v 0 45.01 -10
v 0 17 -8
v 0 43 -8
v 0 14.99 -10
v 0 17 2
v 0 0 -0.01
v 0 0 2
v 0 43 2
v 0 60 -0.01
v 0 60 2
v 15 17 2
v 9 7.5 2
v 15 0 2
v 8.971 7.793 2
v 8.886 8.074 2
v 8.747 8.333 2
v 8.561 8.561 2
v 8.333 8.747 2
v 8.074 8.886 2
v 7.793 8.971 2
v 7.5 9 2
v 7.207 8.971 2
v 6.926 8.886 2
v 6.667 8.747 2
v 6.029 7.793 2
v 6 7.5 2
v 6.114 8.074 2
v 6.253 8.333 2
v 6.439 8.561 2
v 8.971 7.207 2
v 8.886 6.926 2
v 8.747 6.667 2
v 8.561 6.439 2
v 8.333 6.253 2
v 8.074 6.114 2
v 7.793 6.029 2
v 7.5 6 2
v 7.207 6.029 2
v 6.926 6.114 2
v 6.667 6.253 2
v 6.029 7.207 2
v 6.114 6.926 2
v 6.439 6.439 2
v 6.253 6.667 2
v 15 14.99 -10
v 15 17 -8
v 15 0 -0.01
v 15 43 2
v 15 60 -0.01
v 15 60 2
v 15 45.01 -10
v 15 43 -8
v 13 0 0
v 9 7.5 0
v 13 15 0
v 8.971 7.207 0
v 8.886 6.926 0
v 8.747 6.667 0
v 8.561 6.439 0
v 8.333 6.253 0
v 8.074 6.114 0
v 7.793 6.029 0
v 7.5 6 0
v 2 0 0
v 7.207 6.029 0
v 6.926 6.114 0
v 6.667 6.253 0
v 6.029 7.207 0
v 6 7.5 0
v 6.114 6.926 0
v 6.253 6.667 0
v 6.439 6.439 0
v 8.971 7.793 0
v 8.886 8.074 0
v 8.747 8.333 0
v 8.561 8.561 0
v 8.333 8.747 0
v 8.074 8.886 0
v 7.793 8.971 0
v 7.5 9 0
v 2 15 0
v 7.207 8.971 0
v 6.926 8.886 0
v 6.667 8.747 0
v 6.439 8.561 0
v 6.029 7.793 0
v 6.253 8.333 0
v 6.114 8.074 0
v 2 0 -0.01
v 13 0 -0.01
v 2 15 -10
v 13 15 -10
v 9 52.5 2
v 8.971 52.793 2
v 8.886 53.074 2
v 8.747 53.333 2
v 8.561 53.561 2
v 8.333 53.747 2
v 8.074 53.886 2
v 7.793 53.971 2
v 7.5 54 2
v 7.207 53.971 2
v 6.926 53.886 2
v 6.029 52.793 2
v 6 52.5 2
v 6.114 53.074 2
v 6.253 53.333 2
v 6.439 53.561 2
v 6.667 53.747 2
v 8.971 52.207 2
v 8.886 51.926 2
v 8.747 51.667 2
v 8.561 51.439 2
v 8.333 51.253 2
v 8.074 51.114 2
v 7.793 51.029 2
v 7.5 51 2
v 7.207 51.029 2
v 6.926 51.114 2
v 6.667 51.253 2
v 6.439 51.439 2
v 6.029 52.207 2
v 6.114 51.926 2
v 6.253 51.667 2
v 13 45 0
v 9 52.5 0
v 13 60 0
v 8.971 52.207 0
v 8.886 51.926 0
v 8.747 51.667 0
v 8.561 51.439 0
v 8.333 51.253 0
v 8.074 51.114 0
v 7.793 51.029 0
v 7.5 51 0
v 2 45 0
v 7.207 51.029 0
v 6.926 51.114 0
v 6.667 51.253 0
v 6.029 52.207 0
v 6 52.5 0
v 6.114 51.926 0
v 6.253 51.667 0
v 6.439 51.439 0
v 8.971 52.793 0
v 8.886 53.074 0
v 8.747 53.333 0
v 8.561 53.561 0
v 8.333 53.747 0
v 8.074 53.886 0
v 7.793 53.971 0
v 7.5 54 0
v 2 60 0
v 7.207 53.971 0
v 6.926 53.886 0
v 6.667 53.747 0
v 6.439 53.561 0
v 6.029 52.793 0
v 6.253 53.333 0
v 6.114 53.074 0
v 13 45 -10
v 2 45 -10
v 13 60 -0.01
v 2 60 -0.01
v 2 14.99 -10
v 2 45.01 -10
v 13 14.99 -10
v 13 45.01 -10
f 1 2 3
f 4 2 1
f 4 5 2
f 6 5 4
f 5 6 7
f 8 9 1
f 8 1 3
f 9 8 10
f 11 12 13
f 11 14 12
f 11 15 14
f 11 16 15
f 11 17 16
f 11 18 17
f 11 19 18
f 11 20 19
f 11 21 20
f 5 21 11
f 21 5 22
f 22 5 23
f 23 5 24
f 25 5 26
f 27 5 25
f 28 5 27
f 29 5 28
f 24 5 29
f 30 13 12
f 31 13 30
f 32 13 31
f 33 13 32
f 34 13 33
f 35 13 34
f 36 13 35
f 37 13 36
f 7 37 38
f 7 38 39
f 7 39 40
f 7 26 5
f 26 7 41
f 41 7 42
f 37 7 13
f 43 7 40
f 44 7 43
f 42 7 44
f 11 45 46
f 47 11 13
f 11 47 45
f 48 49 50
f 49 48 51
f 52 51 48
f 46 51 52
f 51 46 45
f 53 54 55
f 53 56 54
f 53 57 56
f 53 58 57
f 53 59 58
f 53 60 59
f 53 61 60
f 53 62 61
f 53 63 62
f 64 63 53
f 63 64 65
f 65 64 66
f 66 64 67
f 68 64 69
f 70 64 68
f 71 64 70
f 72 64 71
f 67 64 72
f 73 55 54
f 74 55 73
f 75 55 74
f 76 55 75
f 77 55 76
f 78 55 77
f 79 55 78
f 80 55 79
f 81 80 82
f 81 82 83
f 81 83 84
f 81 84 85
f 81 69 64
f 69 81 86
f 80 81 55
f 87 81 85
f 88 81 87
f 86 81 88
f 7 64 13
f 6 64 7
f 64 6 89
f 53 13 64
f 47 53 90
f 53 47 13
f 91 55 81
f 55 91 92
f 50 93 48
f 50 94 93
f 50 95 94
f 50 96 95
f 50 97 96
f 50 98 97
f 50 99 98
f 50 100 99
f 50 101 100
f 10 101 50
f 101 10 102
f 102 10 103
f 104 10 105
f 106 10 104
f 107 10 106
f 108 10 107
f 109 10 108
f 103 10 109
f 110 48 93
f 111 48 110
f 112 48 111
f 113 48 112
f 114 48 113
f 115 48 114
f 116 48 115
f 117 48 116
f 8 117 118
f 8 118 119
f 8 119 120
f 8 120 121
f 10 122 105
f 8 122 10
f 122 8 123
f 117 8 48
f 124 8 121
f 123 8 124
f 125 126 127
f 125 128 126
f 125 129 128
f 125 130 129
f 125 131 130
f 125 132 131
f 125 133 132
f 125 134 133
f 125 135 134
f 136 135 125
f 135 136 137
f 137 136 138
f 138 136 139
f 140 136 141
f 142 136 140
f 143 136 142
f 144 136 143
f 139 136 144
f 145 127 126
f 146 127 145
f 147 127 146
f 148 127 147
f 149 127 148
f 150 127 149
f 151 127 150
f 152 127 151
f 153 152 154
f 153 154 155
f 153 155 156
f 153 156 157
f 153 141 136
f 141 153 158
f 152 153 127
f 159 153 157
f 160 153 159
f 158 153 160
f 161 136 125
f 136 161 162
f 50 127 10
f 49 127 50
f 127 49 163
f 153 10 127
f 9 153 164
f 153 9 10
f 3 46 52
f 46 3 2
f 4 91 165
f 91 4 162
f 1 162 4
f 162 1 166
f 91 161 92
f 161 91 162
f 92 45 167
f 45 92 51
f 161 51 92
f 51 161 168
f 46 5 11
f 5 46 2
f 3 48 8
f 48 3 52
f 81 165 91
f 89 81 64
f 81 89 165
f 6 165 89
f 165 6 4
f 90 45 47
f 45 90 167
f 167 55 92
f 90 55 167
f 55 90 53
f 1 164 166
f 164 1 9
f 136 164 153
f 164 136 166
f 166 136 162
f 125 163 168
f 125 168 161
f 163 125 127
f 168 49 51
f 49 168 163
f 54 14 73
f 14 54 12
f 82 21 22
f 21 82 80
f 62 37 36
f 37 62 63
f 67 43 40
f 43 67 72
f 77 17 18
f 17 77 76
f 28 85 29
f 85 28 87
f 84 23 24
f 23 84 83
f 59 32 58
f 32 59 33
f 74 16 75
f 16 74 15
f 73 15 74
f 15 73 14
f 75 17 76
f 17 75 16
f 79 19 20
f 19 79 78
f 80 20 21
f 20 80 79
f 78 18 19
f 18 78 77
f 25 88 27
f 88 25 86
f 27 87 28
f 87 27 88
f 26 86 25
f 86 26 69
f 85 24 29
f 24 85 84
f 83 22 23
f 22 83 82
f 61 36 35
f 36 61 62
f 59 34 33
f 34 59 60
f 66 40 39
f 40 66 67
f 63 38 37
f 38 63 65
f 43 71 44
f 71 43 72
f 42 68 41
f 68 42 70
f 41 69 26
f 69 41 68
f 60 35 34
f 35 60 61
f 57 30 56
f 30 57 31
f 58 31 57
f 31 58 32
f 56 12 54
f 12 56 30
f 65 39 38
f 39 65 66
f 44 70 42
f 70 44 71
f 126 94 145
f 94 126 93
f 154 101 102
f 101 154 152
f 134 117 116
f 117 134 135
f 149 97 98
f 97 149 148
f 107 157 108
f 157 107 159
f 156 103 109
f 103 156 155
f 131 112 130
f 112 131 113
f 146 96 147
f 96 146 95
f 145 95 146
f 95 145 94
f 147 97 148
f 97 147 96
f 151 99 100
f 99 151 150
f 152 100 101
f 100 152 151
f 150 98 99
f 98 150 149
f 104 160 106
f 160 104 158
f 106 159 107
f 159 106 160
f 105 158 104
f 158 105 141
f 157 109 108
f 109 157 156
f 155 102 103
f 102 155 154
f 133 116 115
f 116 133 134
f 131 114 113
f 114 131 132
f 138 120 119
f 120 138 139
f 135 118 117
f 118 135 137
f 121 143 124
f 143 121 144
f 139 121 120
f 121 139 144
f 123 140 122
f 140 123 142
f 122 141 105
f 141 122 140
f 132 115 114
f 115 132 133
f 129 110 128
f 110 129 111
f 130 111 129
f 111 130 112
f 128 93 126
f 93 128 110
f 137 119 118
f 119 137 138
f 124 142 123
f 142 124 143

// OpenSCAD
// Wire holder: two overhangs with triangular gussets connected by a bridge
// Walls between each pair of gussets linking overhang tabs to bridge
// Wall height = gusset_height + overhang_thickness
// Based on 8bitdo_v013 overhang/gusset dimensions

// Overhang dimensions (from 8bitdo reference)
overhang_width = 15;
overhang_length = 15;
overhang_thickness = 2;

// Gusset dimensions
gusset_thickness = 2;
gusset_height = 10;

// Screw hole
screw_hole_d = 3;

// Bridge dimensions
bridge_span = 30;       // distance between the two overhangs
bridge_thickness = 2;
bridge_width = 15;      // same as overhang_width

// Wall dimensions
wall_thickness = 2;
wall_height = gusset_height + overhang_thickness;

// Gusset module: right-triangle brace
module gusset(length, height, thickness) {
    hull() {
        cube([thickness, 0.01, height]);
        translate([0, length - 0.01, height - 0.01])
            cube([thickness, 0.01, 0.01]);
    }
}

difference() {
    union() {
        // Left overhang (mounts to surface)
        translate([0, 0, 0])
            cube([overhang_width, overhang_length, overhang_thickness]);

        // Right overhang (mounts to surface)
        translate([0, overhang_length + bridge_span, 0])
            cube([overhang_width, overhang_length, overhang_thickness]);

        // Bridge connecting the two overhangs below
        translate([0, overhang_length, -gusset_height])
            cube([bridge_width, bridge_span, bridge_thickness]);

        // Wall between left gussets
        translate([0, overhang_length, -gusset_height])
            cube([overhang_width, wall_thickness, wall_height]);

        // Wall between right gussets
        translate([0, overhang_length + bridge_span - wall_thickness, -gusset_height])
            cube([overhang_width, wall_thickness, wall_height]);

        // Gussets - left overhang
        translate([0, overhang_length, -gusset_height])
            mirror([0, 1, 0])
                gusset(overhang_length, gusset_height, gusset_thickness);
        translate([overhang_width - gusset_thickness, overhang_length, -gusset_height])
            mirror([0, 1, 0])
                gusset(overhang_length, gusset_height, gusset_thickness);

        // Gussets - right overhang
        translate([0, overhang_length + bridge_span, -gusset_height])
            gusset(overhang_length, gusset_height, gusset_thickness);
        translate([overhang_width - gusset_thickness, overhang_length + bridge_span, -gusset_height])
            gusset(overhang_length, gusset_height, gusset_thickness);
    }

    // Screw holes in overhang tabs
    translate([overhang_width / 2, overhang_length / 2, -1])
        cylinder(h = overhang_thickness + 2, d = screw_hole_d, $fn = 32);
    translate([overhang_width / 2, overhang_length + bridge_span + overhang_length / 2, -1])
        cylinder(h = overhang_thickness + 2, d = screw_hole_d, $fn = 32);
}
